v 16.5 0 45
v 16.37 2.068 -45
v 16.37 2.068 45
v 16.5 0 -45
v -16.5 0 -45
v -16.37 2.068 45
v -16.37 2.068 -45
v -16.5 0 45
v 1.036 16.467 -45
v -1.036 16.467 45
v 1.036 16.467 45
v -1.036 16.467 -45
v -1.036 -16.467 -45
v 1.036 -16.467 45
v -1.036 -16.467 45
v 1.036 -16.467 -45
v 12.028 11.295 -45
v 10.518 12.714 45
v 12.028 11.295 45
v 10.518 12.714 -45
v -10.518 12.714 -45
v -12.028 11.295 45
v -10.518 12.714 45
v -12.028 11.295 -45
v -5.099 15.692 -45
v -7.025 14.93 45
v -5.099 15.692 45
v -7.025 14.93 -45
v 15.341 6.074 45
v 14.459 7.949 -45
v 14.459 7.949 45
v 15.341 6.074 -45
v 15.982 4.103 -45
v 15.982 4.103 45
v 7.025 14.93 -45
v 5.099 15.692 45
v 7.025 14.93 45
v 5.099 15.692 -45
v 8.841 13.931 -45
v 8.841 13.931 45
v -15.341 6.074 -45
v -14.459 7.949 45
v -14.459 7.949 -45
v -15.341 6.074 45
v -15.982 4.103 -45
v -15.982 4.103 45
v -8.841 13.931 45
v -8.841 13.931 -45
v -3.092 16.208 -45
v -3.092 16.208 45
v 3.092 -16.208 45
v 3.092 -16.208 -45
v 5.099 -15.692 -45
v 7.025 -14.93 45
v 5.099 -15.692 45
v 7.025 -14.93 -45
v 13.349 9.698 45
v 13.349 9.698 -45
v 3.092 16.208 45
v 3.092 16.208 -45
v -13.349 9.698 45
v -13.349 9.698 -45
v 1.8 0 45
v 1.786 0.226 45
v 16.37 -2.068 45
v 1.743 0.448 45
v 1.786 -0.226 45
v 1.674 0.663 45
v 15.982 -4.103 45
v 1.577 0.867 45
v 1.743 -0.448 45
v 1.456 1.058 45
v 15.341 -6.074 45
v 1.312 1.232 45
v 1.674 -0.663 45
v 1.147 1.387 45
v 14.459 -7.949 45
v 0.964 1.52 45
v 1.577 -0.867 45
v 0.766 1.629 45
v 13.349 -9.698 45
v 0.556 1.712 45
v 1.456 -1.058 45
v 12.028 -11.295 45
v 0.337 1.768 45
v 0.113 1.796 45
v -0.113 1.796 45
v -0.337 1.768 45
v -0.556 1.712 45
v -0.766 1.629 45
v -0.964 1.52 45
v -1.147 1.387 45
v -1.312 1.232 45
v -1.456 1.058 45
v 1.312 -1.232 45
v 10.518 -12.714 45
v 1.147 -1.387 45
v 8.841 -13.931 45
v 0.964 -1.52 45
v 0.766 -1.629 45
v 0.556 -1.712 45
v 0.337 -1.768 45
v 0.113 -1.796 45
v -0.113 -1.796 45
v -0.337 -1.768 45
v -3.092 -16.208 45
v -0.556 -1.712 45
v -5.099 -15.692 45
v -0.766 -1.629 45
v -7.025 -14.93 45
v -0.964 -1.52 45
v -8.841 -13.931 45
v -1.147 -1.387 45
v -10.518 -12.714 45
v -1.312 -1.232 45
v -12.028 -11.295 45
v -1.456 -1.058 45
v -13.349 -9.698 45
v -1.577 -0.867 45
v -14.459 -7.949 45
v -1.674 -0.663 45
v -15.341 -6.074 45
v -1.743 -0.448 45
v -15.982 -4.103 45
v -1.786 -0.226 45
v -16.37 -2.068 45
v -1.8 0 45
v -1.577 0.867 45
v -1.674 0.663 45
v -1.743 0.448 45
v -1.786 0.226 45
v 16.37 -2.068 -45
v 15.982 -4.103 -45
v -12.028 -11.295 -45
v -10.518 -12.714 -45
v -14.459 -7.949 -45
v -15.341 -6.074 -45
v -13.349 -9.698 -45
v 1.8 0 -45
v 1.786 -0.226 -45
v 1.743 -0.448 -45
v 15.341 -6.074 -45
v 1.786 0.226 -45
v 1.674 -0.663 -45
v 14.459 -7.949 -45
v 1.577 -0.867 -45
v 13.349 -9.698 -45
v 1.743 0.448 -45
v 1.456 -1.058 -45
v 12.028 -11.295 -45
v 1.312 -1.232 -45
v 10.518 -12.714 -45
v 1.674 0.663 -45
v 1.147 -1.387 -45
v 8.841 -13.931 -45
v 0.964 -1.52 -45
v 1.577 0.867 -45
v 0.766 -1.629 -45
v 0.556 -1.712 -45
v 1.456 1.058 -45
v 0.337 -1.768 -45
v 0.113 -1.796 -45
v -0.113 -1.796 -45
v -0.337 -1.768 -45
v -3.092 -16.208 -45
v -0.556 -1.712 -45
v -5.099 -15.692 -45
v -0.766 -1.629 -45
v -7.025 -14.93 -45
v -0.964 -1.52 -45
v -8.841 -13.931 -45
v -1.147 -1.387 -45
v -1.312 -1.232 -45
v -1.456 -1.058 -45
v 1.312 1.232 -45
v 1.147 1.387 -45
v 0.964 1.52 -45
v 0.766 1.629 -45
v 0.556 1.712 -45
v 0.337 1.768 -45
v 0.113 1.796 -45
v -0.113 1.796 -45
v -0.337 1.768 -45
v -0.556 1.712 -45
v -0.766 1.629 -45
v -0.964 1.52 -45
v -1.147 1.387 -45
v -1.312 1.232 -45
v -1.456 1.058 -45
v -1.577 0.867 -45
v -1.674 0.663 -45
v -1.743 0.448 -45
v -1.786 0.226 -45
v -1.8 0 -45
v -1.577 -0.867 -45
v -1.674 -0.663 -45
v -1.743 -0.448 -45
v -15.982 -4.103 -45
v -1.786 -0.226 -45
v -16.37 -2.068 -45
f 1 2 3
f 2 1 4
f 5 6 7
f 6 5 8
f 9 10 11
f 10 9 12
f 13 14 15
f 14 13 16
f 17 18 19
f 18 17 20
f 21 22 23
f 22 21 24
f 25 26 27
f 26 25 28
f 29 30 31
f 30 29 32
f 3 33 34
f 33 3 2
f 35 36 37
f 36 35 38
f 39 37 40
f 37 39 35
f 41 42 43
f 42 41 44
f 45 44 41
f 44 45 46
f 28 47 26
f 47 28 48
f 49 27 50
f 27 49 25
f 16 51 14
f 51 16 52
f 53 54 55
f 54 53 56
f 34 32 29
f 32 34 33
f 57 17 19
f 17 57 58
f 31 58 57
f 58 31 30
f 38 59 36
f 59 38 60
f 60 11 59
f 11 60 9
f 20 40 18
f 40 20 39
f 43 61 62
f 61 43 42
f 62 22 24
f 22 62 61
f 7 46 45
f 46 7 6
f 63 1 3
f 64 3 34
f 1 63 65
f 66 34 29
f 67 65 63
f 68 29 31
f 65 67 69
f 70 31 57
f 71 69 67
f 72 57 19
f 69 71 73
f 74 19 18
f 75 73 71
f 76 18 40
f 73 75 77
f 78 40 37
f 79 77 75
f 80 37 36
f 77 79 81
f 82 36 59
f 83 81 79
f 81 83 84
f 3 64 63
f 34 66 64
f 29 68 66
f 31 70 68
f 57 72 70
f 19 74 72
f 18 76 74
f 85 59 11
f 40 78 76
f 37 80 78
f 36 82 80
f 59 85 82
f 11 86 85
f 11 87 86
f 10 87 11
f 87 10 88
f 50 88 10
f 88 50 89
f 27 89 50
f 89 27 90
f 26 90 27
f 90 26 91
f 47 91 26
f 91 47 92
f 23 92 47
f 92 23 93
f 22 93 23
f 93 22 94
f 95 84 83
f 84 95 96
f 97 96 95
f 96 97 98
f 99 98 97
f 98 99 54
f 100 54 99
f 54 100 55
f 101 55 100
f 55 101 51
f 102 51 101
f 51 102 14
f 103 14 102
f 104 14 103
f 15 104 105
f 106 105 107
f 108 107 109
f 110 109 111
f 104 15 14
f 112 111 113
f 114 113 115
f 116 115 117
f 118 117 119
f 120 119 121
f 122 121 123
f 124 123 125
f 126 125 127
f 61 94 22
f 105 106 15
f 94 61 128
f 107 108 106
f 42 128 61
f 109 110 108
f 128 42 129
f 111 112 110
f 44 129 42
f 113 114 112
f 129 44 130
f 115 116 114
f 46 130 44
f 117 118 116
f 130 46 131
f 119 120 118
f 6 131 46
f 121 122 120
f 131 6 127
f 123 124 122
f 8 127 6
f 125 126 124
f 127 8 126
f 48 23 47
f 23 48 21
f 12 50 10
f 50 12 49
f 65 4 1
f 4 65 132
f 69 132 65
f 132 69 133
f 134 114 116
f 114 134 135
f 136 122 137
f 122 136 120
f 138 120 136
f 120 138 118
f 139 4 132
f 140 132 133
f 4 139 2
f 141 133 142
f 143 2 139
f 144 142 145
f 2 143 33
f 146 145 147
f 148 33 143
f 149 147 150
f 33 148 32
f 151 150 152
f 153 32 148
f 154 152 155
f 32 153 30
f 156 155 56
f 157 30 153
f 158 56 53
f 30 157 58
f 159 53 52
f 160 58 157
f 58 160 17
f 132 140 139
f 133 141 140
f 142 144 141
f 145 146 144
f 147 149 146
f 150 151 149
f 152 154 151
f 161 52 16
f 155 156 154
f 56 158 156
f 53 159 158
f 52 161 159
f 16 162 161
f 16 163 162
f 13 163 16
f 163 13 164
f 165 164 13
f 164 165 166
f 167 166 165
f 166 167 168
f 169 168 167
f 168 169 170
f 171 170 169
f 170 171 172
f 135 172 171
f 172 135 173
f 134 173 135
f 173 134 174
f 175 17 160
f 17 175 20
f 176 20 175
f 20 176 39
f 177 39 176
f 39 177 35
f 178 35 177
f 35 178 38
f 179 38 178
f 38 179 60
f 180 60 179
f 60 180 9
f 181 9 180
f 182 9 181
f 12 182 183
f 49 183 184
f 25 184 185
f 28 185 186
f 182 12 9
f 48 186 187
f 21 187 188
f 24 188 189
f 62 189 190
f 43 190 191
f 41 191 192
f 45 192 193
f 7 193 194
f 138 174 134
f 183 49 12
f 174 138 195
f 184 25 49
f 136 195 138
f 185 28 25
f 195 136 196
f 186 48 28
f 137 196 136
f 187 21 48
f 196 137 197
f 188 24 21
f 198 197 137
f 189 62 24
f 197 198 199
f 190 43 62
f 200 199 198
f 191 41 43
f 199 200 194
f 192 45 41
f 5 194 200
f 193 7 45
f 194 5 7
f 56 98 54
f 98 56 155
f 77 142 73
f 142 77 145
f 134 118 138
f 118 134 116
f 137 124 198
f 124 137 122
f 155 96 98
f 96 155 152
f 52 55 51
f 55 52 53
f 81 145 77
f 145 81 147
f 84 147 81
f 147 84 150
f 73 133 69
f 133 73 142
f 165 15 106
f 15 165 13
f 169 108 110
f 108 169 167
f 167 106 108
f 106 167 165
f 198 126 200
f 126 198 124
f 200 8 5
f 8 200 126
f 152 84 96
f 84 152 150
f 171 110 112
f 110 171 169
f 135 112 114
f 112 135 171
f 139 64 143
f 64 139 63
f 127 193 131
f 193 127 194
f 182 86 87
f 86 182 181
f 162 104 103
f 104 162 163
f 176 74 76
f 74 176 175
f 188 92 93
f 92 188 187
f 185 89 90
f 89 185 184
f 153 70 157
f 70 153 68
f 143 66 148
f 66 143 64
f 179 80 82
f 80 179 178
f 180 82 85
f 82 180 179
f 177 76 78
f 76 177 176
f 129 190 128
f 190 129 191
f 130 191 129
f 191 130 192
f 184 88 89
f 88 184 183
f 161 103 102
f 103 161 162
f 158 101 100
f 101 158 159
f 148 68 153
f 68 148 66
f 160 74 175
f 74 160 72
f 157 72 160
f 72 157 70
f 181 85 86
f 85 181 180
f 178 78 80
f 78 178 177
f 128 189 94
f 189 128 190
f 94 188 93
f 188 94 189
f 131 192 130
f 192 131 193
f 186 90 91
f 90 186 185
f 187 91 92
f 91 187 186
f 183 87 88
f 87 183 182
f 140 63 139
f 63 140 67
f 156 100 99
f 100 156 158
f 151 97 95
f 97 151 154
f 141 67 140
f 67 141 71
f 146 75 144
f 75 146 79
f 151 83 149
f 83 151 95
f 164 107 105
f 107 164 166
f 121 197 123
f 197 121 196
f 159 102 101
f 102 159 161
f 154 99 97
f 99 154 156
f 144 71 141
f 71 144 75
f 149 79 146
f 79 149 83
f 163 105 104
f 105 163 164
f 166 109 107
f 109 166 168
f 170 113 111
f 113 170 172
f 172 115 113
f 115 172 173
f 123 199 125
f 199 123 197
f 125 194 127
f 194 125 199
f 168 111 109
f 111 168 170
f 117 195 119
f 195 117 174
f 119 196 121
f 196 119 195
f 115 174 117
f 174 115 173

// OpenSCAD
$fn = 50;


difference() {
	union() {
		translate(v = [0, 0, -45.0000000000]) {
			cylinder(h = 90, r = 16.5000000000);
		}
	}
	union() {
		translate(v = [0, 0, -100.0000000000]) {
			cylinder(h = 200, r = 1.8000000000);
		}
	}
}
